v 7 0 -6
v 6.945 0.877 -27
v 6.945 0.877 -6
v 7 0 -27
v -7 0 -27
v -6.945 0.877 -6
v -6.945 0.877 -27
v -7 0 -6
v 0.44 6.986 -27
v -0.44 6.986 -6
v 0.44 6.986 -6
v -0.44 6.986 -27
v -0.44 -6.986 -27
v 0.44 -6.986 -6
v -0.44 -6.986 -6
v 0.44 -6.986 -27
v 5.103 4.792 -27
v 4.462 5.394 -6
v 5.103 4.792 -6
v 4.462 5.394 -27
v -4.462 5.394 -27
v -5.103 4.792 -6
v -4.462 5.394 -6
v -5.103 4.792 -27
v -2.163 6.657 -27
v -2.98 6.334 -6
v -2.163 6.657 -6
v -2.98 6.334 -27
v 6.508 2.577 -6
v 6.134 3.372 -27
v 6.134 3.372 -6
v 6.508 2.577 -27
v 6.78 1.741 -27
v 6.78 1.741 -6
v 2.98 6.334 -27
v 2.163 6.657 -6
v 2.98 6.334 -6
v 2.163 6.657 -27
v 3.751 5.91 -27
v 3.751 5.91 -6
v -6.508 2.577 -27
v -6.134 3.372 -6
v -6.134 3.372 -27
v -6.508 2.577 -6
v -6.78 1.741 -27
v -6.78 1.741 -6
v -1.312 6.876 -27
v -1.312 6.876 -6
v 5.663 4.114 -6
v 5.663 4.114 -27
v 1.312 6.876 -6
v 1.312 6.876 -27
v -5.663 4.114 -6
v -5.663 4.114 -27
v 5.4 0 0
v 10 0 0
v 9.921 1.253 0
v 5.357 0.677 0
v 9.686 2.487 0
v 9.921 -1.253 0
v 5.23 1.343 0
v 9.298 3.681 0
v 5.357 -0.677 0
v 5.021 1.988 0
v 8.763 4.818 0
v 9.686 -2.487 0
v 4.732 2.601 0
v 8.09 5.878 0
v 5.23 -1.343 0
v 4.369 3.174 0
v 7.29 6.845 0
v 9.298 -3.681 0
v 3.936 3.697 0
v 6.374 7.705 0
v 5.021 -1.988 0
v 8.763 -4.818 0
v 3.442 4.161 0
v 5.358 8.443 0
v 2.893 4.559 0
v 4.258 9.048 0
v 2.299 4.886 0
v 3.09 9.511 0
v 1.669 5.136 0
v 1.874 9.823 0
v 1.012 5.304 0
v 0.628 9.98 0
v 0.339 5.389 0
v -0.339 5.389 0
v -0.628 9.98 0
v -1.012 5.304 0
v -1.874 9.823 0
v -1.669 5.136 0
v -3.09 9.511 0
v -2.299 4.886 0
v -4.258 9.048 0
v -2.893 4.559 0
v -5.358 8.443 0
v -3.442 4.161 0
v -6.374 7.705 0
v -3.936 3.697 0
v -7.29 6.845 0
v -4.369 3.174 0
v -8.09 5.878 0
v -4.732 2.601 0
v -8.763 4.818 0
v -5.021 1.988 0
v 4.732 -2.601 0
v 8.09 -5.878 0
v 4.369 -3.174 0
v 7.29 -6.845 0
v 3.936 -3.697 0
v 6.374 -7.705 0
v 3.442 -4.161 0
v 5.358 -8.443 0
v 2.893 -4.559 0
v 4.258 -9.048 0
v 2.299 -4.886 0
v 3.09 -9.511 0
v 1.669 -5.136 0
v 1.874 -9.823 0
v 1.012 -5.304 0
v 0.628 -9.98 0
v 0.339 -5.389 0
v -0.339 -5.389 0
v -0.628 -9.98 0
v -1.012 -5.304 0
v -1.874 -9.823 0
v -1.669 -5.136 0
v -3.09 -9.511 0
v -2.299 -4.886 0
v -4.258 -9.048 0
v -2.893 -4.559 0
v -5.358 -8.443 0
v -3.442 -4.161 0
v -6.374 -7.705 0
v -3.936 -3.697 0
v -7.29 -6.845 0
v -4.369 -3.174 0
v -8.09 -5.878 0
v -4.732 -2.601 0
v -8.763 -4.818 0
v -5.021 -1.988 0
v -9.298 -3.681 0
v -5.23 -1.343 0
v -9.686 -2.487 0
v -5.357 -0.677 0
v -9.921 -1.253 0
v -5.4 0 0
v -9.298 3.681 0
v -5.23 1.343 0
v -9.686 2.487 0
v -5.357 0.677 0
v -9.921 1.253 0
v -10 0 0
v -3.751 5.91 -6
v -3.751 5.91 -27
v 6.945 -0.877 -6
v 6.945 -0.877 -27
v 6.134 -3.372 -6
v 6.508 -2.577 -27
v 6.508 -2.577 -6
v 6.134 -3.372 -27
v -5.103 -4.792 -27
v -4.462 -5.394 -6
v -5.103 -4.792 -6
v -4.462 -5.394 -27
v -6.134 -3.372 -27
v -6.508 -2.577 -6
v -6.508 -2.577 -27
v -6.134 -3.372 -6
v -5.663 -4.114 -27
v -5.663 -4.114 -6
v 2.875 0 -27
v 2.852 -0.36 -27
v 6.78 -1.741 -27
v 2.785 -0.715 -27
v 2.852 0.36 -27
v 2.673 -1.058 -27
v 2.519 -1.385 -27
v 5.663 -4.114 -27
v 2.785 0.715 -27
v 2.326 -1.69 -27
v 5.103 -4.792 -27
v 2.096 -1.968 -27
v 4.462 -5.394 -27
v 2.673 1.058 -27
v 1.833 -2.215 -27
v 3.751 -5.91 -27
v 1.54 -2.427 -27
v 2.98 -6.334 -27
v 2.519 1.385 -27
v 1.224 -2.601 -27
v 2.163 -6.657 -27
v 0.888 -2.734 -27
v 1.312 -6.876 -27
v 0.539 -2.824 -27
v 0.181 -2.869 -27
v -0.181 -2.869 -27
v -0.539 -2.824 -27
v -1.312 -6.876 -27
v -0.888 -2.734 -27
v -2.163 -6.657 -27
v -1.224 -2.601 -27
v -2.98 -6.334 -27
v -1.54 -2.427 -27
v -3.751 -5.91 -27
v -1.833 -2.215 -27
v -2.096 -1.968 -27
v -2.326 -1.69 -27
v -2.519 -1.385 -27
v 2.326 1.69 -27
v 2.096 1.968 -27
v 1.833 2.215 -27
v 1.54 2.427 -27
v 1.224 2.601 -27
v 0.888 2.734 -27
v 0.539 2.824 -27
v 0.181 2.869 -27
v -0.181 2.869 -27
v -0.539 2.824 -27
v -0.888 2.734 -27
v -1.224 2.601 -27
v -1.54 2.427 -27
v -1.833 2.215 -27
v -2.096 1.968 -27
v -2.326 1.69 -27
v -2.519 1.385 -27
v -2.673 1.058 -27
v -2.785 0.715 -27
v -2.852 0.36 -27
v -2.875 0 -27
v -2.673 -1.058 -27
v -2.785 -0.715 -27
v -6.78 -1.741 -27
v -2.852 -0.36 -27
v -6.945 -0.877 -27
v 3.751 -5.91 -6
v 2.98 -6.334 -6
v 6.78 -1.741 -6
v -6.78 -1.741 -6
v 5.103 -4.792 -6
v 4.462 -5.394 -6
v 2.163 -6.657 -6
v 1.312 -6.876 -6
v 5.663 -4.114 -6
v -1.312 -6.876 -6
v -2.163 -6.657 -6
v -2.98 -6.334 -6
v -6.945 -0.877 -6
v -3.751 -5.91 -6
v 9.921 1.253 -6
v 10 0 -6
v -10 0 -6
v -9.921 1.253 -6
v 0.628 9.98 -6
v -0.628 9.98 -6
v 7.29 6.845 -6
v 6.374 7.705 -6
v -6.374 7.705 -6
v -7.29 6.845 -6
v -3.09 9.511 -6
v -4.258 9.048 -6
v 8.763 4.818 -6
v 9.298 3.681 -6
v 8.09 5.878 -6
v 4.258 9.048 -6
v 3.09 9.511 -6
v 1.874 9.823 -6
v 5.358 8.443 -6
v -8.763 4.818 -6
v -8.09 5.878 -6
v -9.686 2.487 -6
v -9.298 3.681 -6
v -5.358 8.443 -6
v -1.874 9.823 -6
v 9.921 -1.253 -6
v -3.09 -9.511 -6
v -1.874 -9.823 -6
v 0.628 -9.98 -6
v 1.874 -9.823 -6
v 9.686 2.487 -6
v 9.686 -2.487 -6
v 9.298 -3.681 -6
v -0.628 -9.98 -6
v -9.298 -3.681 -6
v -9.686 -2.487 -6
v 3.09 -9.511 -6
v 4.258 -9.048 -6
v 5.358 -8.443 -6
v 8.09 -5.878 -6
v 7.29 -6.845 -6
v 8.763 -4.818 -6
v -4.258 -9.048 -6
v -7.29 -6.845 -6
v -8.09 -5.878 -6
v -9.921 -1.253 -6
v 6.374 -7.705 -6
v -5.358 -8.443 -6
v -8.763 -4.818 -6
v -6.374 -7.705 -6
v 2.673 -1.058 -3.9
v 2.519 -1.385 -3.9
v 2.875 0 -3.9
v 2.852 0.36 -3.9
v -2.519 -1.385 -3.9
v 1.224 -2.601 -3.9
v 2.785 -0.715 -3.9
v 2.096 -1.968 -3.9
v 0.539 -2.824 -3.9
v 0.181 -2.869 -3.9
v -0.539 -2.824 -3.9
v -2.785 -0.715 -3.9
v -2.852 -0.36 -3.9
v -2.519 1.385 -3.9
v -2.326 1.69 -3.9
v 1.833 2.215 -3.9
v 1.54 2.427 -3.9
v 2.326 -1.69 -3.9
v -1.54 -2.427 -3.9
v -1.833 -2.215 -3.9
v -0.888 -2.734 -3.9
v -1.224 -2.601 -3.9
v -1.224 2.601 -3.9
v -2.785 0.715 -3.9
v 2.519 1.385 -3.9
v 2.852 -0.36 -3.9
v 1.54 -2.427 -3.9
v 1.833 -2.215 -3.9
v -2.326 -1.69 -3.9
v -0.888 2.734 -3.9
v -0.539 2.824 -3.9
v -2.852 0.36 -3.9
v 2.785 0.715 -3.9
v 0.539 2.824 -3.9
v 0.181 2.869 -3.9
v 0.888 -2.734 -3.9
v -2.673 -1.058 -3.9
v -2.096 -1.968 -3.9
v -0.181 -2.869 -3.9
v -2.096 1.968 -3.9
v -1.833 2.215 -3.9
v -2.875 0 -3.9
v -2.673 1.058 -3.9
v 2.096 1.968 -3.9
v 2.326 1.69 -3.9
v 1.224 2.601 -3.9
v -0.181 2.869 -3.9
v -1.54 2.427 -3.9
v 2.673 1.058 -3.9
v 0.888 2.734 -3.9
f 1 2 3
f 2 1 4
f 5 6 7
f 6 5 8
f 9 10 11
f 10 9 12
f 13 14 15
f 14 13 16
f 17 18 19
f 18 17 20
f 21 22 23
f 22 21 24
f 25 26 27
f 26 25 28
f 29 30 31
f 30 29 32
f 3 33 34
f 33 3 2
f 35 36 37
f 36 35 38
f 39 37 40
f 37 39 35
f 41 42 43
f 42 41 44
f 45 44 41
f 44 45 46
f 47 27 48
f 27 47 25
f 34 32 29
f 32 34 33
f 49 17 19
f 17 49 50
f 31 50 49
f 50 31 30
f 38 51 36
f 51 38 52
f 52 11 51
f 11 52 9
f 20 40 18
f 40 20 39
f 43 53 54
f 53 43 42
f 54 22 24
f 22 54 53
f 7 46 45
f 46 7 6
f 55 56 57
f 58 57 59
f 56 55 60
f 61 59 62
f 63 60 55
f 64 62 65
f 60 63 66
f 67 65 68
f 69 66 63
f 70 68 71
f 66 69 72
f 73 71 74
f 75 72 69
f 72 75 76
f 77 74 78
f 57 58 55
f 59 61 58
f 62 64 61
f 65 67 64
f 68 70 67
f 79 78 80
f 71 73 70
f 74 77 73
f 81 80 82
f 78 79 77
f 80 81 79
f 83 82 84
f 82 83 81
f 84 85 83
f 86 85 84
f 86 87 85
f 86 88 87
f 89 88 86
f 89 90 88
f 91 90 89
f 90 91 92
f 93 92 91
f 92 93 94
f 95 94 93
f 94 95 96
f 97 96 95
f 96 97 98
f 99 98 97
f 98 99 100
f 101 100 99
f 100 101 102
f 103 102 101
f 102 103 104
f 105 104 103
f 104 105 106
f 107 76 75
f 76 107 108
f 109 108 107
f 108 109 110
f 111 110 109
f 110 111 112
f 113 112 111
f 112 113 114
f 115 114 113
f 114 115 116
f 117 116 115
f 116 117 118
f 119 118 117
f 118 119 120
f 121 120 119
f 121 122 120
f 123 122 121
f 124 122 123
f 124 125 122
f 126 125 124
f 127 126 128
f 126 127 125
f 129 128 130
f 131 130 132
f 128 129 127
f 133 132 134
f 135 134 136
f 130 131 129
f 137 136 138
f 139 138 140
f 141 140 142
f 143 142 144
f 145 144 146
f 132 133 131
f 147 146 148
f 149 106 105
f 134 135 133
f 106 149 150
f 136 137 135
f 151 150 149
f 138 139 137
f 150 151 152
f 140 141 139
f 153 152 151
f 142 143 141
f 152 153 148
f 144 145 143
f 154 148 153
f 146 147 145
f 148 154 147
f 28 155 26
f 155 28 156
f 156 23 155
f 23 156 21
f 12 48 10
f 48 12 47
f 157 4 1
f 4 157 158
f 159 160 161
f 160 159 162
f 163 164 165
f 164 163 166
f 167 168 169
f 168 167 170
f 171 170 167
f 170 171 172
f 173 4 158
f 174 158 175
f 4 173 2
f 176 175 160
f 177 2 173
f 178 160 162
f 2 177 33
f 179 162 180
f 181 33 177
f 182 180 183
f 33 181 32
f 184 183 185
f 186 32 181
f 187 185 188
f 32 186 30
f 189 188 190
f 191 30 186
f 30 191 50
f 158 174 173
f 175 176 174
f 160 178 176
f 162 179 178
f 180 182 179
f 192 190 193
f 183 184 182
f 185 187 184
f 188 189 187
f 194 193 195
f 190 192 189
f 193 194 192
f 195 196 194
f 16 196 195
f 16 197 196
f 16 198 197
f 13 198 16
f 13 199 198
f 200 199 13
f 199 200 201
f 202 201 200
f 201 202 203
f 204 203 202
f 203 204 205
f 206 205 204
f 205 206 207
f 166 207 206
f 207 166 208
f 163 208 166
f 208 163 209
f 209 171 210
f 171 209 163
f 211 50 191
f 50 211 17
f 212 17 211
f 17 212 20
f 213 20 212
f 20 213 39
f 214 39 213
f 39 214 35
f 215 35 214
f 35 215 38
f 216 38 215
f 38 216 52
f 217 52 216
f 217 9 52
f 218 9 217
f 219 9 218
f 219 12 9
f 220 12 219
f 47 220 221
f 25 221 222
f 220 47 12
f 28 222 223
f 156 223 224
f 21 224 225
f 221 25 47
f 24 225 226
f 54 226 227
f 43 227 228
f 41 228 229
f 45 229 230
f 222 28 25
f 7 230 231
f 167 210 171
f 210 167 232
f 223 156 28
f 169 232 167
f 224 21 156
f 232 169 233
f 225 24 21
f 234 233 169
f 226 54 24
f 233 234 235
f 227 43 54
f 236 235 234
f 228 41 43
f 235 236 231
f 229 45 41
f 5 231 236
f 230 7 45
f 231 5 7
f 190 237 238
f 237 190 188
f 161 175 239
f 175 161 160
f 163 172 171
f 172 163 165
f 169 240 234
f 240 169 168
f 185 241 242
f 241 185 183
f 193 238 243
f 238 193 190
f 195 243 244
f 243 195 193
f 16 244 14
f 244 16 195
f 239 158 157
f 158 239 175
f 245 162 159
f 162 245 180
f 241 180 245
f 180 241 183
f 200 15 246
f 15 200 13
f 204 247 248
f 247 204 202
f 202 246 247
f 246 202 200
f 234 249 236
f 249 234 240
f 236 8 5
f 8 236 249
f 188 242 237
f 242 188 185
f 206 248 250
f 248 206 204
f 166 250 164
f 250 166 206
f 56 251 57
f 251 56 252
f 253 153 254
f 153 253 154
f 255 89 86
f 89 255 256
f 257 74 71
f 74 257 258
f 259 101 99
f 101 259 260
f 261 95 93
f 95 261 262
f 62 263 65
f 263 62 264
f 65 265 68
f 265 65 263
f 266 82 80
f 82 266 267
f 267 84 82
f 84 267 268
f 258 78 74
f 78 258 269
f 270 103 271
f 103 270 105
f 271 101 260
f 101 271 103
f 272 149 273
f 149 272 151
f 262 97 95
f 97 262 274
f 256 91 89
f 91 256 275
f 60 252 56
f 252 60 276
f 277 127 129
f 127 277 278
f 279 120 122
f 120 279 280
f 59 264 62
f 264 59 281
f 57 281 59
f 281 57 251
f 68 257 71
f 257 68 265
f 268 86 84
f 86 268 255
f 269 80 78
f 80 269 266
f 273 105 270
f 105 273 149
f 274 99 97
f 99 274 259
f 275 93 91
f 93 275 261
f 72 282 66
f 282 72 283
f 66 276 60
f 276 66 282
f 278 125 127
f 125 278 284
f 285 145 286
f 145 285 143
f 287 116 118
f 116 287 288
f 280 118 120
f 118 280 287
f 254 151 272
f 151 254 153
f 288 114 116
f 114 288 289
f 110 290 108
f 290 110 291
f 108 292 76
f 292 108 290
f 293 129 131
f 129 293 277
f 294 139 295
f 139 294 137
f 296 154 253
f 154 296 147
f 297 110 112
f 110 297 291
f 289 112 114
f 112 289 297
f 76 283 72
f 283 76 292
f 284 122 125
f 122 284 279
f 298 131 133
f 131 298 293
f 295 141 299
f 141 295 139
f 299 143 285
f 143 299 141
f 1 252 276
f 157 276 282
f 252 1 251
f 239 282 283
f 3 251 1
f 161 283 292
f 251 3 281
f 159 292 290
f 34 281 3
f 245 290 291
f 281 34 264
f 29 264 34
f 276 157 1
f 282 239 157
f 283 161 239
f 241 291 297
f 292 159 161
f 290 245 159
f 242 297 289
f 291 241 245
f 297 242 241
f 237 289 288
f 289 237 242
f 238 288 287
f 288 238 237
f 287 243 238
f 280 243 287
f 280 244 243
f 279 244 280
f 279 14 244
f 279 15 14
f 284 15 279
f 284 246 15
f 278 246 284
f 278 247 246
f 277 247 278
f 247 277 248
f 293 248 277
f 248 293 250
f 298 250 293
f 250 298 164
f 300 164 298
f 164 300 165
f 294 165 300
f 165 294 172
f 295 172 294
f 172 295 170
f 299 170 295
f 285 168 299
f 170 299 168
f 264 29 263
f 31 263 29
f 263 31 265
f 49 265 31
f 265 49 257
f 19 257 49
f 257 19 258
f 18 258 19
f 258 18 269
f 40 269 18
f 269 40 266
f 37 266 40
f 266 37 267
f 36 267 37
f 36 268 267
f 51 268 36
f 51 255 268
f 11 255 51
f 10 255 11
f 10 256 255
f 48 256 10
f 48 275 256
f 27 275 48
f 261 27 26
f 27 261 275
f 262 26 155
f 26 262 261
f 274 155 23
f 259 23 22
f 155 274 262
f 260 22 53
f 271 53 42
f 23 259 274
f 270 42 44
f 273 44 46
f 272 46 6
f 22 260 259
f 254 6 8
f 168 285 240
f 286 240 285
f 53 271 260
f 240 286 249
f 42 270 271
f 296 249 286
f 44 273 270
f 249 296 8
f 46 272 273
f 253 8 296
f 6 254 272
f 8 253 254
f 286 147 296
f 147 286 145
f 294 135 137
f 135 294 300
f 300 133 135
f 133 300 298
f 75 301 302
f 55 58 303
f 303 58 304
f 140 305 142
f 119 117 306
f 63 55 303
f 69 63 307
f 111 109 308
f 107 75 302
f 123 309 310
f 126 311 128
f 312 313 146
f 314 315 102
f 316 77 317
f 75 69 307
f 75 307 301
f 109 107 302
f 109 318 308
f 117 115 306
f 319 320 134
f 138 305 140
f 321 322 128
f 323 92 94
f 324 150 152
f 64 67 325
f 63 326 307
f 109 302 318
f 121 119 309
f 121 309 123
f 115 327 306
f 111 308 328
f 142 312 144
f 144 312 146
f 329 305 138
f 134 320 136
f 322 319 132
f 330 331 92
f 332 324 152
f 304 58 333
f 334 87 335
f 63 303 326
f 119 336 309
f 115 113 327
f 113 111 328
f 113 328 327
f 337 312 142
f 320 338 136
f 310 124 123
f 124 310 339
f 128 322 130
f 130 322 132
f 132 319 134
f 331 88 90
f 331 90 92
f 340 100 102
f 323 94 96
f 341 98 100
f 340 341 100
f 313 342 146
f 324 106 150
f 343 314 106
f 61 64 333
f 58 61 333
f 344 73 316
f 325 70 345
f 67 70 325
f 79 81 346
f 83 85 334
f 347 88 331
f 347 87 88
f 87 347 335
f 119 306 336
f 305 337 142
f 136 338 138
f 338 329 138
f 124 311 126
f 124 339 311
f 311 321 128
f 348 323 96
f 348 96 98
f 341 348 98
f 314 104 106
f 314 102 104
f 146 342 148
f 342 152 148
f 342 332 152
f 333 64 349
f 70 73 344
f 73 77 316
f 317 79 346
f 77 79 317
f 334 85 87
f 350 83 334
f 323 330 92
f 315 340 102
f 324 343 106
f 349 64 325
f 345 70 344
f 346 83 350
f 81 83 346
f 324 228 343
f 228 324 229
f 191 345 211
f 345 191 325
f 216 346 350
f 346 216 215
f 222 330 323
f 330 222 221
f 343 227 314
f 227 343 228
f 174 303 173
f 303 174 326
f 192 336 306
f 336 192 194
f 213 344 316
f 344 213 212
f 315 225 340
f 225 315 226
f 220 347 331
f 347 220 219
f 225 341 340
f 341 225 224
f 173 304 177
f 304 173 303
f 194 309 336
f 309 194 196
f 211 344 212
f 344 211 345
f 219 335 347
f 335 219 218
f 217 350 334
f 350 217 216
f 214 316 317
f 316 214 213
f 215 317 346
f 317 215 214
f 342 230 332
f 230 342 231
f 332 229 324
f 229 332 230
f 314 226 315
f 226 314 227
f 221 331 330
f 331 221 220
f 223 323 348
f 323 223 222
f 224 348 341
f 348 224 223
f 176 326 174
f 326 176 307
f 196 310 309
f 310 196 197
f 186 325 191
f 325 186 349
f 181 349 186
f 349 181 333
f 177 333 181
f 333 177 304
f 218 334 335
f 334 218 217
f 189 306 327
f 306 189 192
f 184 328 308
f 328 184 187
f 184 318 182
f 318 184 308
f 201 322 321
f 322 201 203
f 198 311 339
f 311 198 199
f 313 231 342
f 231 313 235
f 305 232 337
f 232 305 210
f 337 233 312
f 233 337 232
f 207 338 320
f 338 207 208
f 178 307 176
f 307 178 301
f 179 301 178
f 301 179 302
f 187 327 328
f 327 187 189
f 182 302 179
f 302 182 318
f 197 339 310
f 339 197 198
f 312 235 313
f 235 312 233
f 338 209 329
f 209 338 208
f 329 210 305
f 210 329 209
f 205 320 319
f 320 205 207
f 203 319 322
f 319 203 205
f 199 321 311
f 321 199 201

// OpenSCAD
$fn = 50;


difference() {
	union() {
		translate(v = [0, 0, -27.0000000000]) {
			cylinder(h = 27, r = 7.0000000000);
		}
		translate(v = [0, 0, -6.0000000000]) {
			cylinder(h = 6, r = 10.0000000000);
		}
	}
	union() {
		translate(v = [0, 0, 0]) {
			rotate(a = [0, 0, 0]) {
				difference() {
					union() {
						#translate(v = [0, 0, -27.0000000000]) {
							cylinder(h = 27, r = 2.6000000000);
						}
						#translate(v = [0, 0, -3.9000000000]) {
							cylinder(h = 3.9000000000, r = 7.0000000000, r1 = 2.8750000000, r2 = 5.4000000000);
						}
						#translate(v = [0, 0, -27.0000000000]) {
							cylinder(h = 27, r = 2.8750000000);
						}
						#translate(v = [0, 0, -27.0000000000]) {
							cylinder(h = 27, r = 2.6000000000);
						}
					}
					union();
				}
			}
		}
	}
}
